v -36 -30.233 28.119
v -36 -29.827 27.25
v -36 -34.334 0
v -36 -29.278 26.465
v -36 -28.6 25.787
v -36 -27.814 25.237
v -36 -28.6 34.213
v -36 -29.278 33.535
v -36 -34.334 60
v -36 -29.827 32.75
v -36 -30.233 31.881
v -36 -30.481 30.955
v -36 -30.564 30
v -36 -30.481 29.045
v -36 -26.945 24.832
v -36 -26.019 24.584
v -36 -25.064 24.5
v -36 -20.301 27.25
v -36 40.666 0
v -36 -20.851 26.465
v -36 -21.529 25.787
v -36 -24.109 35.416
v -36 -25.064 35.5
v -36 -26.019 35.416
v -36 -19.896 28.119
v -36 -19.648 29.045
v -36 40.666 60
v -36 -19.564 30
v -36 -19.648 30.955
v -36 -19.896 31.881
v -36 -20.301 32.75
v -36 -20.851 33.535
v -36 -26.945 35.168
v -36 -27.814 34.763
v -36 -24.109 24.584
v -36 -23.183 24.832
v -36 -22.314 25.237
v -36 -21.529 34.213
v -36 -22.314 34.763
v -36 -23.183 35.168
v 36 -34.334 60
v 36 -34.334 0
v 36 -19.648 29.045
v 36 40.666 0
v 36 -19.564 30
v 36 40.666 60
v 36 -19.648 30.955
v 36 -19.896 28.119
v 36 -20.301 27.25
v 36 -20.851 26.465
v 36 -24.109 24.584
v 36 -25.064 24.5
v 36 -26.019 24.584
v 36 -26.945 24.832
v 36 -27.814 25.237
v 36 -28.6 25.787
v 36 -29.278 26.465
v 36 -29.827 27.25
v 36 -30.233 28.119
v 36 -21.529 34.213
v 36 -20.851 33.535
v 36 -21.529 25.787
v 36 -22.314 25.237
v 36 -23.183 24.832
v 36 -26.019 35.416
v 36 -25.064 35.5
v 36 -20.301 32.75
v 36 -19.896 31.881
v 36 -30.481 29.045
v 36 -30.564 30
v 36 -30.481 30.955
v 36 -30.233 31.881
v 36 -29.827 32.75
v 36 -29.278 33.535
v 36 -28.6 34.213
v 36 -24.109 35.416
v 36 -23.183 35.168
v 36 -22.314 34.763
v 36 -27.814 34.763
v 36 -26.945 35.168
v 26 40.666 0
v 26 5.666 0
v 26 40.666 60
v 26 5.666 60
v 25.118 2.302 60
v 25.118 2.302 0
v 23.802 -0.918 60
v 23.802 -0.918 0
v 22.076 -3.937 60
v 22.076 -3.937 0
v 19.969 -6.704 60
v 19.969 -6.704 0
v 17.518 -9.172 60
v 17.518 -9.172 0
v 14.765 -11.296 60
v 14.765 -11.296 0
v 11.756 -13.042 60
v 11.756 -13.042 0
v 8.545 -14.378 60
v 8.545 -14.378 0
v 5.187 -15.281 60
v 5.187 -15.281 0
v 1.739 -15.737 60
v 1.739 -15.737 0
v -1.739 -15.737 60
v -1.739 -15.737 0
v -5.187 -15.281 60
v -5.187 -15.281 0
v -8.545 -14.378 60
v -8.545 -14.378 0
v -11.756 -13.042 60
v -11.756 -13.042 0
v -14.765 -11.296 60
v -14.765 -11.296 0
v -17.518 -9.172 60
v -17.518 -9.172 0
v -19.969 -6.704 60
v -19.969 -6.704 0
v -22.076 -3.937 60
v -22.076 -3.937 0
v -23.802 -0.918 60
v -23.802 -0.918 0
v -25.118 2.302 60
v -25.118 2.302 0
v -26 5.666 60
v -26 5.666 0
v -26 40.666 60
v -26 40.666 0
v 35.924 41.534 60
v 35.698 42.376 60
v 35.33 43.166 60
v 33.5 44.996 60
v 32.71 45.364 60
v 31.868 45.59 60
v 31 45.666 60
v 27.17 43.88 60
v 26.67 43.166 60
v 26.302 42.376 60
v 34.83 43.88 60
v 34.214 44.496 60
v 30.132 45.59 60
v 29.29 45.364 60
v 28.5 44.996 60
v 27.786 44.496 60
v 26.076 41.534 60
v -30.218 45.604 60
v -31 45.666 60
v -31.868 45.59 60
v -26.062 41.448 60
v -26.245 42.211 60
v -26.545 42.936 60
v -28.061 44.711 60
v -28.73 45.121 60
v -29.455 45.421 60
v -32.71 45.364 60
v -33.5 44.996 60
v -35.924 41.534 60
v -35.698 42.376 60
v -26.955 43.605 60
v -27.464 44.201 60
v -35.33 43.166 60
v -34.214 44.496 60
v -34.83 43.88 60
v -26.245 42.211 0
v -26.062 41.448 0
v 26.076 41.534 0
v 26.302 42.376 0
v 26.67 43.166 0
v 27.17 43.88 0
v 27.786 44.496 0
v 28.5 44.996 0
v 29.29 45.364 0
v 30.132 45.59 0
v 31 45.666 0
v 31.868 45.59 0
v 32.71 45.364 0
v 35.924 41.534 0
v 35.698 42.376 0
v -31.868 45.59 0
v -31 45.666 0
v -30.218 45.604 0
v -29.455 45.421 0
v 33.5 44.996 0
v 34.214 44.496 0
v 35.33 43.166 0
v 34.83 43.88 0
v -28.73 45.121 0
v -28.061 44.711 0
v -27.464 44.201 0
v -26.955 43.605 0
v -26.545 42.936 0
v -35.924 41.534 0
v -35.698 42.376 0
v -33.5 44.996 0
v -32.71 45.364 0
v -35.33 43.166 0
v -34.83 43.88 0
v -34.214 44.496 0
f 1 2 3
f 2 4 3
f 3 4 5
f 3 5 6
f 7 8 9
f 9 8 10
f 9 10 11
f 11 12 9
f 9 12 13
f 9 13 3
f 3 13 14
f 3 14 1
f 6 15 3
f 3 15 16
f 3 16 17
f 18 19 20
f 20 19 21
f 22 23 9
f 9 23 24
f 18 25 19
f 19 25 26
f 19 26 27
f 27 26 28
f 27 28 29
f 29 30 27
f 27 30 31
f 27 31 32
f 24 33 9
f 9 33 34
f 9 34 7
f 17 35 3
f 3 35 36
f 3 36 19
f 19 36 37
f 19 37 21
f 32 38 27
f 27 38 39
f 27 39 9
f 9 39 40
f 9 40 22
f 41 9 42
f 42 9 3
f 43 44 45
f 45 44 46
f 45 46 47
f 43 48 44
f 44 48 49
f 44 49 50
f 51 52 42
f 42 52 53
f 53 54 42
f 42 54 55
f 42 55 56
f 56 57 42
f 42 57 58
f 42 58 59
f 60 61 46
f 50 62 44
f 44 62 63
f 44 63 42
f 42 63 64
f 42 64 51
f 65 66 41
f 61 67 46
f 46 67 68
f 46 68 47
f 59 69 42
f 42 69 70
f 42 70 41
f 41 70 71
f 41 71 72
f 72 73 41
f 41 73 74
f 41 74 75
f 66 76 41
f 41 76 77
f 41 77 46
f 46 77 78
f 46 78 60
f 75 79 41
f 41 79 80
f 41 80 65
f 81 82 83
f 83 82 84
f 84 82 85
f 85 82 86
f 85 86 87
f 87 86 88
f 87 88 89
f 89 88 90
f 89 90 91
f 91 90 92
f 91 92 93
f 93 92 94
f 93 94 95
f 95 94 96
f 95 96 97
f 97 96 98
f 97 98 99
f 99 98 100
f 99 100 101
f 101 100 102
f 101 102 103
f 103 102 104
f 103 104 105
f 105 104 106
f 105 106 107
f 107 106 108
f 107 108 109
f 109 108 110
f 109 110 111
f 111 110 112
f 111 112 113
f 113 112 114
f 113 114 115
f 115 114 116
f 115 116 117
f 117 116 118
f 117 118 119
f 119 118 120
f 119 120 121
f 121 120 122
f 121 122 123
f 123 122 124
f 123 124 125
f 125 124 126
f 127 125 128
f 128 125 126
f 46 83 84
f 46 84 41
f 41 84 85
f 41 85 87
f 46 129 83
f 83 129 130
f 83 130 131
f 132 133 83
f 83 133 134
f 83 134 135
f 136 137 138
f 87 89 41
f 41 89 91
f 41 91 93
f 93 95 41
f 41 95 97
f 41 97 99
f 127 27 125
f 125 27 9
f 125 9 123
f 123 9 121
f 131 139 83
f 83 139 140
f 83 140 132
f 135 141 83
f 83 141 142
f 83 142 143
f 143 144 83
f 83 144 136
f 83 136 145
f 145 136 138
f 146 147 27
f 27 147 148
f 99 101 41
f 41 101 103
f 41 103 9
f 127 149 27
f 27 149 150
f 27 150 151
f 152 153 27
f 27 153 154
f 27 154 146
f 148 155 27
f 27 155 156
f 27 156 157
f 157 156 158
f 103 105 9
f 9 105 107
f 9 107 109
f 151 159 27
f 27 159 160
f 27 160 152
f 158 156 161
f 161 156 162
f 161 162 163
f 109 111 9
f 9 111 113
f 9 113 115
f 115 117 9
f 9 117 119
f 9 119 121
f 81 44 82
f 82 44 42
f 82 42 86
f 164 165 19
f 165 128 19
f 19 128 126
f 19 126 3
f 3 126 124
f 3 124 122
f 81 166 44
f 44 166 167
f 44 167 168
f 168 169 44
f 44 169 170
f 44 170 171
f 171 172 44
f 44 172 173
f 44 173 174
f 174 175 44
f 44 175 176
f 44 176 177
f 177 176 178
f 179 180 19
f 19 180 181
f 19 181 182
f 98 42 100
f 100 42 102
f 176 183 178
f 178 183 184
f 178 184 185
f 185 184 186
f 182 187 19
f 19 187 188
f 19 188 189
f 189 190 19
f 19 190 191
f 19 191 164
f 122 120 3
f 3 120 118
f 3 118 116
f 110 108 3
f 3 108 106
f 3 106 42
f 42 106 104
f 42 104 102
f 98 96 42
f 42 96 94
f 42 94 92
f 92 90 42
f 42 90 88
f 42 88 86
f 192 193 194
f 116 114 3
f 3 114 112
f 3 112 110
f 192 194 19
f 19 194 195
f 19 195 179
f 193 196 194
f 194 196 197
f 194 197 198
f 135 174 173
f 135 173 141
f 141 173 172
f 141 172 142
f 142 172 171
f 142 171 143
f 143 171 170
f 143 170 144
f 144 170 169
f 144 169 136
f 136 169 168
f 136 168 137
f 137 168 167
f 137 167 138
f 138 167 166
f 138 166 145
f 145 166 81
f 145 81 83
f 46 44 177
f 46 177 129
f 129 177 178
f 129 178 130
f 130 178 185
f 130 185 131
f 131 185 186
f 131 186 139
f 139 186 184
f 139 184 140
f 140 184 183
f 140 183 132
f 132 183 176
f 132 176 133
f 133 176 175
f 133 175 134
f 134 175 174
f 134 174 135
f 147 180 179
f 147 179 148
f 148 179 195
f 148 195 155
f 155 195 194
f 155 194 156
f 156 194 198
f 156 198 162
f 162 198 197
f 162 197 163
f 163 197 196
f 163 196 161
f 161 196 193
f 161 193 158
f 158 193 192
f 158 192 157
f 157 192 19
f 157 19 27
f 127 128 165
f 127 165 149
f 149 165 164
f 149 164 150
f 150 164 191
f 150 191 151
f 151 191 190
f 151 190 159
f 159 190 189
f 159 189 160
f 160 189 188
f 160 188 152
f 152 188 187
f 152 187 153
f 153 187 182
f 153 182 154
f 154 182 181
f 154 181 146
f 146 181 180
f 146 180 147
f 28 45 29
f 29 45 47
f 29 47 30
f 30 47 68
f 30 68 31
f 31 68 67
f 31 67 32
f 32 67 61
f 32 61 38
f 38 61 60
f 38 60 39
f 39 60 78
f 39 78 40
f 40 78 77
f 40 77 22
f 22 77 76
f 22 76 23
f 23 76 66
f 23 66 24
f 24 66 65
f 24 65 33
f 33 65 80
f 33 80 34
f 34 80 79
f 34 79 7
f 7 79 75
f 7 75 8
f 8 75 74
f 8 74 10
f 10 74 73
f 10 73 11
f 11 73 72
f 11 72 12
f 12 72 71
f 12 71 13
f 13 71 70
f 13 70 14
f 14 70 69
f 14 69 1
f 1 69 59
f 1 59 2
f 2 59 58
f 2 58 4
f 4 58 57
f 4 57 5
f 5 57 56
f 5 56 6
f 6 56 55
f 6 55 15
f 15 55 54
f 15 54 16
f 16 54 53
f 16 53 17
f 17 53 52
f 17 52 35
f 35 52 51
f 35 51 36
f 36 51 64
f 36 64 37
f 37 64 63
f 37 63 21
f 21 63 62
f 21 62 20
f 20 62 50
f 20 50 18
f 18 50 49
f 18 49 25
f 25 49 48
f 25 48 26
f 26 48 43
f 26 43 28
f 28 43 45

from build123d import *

# Parameters (mm, degrees)
BOSS_EXTRUDE1_DEPTH = 60
FILLET2_R           = 5
SKETCH5_R           = 5.5
CUT_EXTRUDE1_DEPTH  = 105.256230261


with BuildPart() as part:
    # Sketch2 → Boss-Extrude1 (new body)
    with BuildSketch(Plane.XY):
        with BuildLine():
            Line((-26, 45.665759035), (-26, 5.665759035))
            ThreePointArc((-26, 5.665759035), (0, -15.794380862), (26, 5.665759035))
            Line((26, 5.665759035), (26, 45.665759035))
            Line((26, 45.665759035), (36, 45.665759035))
            Line((36, 45.665759035), (36, 2.642754473))
            Line((36, 2.642754473), (36, -34.334240965))
            Line((36, -34.334240965), (-36, -34.334240965))
            Line((-36, -34.334240965), (-36, 5.665759035))
            Line((-36, 5.665759035), (-36, 45.665759035))
            Line((-36, 45.665759035), (-26, 45.665759035))
        make_face()
    extrude(amount=BOSS_EXTRUDE1_DEPTH)

    # Fillet2
    fillet2_edges = [part.edges().sort_by_distance(p)[0] for p in [
        (36, 45.665759035, 30),
        (26, 45.665759035, 30),
        (-26, 45.665759035, 30),
        (-36, 45.665759035, 30),
    ]]
    fillet(fillet2_edges, radius=FILLET2_R - 0.0001)  # a hair under: the kernel refuses the full size

    # Sketch5 → Cut-Extrude1 (cut, through all)
    with BuildSketch(Plane(origin=(36, 0, 0), x_dir=(0, 0, -1), z_dir=(1, 0, 0))):
        with Locations(Location((-30, -25.064310913, 0), (0, 0, 90))):
            Circle(SKETCH5_R)
    extrude(amount=-CUT_EXTRUDE1_DEPTH, mode=Mode.SUBTRACT)


solid = part.part
